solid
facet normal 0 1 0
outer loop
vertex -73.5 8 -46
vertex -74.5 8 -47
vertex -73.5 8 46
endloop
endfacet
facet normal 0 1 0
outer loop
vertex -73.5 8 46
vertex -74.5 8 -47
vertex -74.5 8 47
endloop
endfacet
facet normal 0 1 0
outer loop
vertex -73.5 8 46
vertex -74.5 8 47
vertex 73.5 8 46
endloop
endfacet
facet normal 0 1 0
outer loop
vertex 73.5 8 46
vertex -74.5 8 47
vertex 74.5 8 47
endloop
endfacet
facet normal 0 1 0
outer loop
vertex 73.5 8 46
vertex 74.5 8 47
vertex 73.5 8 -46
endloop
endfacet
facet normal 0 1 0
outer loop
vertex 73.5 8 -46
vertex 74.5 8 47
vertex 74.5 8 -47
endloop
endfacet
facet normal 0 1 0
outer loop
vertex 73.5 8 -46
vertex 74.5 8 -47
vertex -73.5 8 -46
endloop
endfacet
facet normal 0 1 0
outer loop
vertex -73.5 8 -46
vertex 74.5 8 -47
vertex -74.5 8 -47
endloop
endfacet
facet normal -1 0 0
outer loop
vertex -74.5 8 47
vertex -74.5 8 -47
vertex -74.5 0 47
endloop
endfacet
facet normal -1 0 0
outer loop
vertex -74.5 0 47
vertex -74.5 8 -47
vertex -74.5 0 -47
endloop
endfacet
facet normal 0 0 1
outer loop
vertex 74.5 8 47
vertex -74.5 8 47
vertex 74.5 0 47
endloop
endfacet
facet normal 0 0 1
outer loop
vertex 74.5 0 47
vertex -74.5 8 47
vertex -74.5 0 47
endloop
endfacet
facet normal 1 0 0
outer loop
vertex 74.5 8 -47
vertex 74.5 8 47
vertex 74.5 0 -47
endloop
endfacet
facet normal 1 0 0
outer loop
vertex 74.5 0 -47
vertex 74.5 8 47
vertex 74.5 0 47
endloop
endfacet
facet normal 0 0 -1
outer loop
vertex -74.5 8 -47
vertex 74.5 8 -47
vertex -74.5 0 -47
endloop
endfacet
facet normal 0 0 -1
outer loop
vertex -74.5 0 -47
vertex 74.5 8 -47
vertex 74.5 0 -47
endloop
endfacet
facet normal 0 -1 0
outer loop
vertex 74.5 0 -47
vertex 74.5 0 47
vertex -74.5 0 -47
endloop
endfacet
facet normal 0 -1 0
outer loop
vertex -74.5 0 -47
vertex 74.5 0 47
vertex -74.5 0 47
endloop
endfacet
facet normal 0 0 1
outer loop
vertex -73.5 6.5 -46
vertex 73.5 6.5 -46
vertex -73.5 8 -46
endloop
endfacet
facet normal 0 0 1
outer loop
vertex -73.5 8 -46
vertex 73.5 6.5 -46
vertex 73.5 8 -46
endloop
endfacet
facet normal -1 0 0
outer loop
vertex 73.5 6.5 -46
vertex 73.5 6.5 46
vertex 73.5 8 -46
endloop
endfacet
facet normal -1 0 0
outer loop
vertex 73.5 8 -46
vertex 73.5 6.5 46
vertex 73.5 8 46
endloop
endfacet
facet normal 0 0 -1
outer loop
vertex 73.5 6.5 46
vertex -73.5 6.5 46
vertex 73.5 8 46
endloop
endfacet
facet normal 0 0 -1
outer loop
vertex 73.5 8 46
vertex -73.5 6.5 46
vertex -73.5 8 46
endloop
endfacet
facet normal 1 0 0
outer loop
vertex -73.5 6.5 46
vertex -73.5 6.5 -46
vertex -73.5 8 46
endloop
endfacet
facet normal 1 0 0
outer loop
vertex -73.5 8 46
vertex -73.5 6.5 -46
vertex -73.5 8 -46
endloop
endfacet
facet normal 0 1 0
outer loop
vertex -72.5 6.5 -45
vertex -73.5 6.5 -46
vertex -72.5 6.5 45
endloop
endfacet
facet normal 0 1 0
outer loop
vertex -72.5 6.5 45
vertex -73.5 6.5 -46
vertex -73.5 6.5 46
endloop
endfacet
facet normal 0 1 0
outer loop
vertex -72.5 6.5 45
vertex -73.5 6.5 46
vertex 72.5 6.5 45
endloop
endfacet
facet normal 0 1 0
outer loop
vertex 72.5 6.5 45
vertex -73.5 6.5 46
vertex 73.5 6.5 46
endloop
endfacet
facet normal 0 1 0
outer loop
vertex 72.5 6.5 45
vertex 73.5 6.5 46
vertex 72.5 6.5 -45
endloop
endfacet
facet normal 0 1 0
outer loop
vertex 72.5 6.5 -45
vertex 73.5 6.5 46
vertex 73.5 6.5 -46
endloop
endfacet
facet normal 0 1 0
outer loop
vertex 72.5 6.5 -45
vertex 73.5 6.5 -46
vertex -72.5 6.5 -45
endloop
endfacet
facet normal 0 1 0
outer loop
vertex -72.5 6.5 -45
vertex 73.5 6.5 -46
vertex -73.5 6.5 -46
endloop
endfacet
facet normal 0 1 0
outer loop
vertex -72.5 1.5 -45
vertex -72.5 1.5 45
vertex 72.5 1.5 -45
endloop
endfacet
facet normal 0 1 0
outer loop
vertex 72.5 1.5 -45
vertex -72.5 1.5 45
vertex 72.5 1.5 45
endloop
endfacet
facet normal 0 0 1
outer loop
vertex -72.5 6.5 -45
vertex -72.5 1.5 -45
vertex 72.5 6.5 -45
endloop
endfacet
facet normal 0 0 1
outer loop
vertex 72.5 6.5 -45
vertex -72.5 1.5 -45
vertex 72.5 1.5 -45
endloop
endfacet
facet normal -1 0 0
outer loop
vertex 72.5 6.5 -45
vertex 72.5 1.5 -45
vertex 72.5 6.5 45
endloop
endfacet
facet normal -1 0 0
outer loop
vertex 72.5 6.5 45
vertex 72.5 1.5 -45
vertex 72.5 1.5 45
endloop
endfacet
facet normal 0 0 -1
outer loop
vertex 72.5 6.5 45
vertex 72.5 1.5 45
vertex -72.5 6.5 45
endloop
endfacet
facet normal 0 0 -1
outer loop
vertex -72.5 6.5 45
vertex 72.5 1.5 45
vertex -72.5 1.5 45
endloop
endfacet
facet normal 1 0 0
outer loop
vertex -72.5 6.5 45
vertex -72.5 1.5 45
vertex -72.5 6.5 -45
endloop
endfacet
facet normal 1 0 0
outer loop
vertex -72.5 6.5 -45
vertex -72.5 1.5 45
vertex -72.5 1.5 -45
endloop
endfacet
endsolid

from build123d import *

# Parameters (mm, degrees)
SKETCH1_W           = 145
SKETCH1_H           = 90
BOSS_EXTRUDE1_DEPTH = 1.5
SKETCH2_W           = 149
SKETCH2_H           = 94
SKETCH2_W_2         = 145
SKETCH2_H_2         = 90
BOSS_EXTRUDE2_DEPTH = 8
SKETCH3_W           = 147
SKETCH3_H           = 92
SKETCH3_W_2         = 145
SKETCH3_H_2         = 90
CUT_EXTRUDE1_DEPTH  = 1.5


with BuildPart() as part:
    # Sketch1 → Boss-Extrude1 (new body)
    with BuildSketch(Plane(origin=(0, 0, 0), x_dir=(1, 0, 0), z_dir=(0, 1, 0))):
        Rectangle(SKETCH1_W, SKETCH1_H)
    extrude(amount=BOSS_EXTRUDE1_DEPTH)

    # Sketch2 → Boss-Extrude2 (add)
    with BuildSketch(Plane(origin=(0, 0, 0), x_dir=(1, 0, 0), z_dir=(0, 1, 0))):
        Rectangle(SKETCH2_W, SKETCH2_H)
        Rectangle(SKETCH2_W_2, SKETCH2_H_2, mode=Mode.SUBTRACT)
    extrude(amount=BOSS_EXTRUDE2_DEPTH)

    # Sketch3 → Cut-Extrude1 (cut)
    with BuildSketch(Plane(origin=(0, 8, 0), x_dir=(1, 0, 0), z_dir=(0, 1, 0))):
        Rectangle(SKETCH3_W, SKETCH3_H)
        Rectangle(SKETCH3_W_2, SKETCH3_H_2, mode=Mode.SUBTRACT)
    extrude(amount=-CUT_EXTRUDE1_DEPTH, mode=Mode.SUBTRACT)


solid = part.part
